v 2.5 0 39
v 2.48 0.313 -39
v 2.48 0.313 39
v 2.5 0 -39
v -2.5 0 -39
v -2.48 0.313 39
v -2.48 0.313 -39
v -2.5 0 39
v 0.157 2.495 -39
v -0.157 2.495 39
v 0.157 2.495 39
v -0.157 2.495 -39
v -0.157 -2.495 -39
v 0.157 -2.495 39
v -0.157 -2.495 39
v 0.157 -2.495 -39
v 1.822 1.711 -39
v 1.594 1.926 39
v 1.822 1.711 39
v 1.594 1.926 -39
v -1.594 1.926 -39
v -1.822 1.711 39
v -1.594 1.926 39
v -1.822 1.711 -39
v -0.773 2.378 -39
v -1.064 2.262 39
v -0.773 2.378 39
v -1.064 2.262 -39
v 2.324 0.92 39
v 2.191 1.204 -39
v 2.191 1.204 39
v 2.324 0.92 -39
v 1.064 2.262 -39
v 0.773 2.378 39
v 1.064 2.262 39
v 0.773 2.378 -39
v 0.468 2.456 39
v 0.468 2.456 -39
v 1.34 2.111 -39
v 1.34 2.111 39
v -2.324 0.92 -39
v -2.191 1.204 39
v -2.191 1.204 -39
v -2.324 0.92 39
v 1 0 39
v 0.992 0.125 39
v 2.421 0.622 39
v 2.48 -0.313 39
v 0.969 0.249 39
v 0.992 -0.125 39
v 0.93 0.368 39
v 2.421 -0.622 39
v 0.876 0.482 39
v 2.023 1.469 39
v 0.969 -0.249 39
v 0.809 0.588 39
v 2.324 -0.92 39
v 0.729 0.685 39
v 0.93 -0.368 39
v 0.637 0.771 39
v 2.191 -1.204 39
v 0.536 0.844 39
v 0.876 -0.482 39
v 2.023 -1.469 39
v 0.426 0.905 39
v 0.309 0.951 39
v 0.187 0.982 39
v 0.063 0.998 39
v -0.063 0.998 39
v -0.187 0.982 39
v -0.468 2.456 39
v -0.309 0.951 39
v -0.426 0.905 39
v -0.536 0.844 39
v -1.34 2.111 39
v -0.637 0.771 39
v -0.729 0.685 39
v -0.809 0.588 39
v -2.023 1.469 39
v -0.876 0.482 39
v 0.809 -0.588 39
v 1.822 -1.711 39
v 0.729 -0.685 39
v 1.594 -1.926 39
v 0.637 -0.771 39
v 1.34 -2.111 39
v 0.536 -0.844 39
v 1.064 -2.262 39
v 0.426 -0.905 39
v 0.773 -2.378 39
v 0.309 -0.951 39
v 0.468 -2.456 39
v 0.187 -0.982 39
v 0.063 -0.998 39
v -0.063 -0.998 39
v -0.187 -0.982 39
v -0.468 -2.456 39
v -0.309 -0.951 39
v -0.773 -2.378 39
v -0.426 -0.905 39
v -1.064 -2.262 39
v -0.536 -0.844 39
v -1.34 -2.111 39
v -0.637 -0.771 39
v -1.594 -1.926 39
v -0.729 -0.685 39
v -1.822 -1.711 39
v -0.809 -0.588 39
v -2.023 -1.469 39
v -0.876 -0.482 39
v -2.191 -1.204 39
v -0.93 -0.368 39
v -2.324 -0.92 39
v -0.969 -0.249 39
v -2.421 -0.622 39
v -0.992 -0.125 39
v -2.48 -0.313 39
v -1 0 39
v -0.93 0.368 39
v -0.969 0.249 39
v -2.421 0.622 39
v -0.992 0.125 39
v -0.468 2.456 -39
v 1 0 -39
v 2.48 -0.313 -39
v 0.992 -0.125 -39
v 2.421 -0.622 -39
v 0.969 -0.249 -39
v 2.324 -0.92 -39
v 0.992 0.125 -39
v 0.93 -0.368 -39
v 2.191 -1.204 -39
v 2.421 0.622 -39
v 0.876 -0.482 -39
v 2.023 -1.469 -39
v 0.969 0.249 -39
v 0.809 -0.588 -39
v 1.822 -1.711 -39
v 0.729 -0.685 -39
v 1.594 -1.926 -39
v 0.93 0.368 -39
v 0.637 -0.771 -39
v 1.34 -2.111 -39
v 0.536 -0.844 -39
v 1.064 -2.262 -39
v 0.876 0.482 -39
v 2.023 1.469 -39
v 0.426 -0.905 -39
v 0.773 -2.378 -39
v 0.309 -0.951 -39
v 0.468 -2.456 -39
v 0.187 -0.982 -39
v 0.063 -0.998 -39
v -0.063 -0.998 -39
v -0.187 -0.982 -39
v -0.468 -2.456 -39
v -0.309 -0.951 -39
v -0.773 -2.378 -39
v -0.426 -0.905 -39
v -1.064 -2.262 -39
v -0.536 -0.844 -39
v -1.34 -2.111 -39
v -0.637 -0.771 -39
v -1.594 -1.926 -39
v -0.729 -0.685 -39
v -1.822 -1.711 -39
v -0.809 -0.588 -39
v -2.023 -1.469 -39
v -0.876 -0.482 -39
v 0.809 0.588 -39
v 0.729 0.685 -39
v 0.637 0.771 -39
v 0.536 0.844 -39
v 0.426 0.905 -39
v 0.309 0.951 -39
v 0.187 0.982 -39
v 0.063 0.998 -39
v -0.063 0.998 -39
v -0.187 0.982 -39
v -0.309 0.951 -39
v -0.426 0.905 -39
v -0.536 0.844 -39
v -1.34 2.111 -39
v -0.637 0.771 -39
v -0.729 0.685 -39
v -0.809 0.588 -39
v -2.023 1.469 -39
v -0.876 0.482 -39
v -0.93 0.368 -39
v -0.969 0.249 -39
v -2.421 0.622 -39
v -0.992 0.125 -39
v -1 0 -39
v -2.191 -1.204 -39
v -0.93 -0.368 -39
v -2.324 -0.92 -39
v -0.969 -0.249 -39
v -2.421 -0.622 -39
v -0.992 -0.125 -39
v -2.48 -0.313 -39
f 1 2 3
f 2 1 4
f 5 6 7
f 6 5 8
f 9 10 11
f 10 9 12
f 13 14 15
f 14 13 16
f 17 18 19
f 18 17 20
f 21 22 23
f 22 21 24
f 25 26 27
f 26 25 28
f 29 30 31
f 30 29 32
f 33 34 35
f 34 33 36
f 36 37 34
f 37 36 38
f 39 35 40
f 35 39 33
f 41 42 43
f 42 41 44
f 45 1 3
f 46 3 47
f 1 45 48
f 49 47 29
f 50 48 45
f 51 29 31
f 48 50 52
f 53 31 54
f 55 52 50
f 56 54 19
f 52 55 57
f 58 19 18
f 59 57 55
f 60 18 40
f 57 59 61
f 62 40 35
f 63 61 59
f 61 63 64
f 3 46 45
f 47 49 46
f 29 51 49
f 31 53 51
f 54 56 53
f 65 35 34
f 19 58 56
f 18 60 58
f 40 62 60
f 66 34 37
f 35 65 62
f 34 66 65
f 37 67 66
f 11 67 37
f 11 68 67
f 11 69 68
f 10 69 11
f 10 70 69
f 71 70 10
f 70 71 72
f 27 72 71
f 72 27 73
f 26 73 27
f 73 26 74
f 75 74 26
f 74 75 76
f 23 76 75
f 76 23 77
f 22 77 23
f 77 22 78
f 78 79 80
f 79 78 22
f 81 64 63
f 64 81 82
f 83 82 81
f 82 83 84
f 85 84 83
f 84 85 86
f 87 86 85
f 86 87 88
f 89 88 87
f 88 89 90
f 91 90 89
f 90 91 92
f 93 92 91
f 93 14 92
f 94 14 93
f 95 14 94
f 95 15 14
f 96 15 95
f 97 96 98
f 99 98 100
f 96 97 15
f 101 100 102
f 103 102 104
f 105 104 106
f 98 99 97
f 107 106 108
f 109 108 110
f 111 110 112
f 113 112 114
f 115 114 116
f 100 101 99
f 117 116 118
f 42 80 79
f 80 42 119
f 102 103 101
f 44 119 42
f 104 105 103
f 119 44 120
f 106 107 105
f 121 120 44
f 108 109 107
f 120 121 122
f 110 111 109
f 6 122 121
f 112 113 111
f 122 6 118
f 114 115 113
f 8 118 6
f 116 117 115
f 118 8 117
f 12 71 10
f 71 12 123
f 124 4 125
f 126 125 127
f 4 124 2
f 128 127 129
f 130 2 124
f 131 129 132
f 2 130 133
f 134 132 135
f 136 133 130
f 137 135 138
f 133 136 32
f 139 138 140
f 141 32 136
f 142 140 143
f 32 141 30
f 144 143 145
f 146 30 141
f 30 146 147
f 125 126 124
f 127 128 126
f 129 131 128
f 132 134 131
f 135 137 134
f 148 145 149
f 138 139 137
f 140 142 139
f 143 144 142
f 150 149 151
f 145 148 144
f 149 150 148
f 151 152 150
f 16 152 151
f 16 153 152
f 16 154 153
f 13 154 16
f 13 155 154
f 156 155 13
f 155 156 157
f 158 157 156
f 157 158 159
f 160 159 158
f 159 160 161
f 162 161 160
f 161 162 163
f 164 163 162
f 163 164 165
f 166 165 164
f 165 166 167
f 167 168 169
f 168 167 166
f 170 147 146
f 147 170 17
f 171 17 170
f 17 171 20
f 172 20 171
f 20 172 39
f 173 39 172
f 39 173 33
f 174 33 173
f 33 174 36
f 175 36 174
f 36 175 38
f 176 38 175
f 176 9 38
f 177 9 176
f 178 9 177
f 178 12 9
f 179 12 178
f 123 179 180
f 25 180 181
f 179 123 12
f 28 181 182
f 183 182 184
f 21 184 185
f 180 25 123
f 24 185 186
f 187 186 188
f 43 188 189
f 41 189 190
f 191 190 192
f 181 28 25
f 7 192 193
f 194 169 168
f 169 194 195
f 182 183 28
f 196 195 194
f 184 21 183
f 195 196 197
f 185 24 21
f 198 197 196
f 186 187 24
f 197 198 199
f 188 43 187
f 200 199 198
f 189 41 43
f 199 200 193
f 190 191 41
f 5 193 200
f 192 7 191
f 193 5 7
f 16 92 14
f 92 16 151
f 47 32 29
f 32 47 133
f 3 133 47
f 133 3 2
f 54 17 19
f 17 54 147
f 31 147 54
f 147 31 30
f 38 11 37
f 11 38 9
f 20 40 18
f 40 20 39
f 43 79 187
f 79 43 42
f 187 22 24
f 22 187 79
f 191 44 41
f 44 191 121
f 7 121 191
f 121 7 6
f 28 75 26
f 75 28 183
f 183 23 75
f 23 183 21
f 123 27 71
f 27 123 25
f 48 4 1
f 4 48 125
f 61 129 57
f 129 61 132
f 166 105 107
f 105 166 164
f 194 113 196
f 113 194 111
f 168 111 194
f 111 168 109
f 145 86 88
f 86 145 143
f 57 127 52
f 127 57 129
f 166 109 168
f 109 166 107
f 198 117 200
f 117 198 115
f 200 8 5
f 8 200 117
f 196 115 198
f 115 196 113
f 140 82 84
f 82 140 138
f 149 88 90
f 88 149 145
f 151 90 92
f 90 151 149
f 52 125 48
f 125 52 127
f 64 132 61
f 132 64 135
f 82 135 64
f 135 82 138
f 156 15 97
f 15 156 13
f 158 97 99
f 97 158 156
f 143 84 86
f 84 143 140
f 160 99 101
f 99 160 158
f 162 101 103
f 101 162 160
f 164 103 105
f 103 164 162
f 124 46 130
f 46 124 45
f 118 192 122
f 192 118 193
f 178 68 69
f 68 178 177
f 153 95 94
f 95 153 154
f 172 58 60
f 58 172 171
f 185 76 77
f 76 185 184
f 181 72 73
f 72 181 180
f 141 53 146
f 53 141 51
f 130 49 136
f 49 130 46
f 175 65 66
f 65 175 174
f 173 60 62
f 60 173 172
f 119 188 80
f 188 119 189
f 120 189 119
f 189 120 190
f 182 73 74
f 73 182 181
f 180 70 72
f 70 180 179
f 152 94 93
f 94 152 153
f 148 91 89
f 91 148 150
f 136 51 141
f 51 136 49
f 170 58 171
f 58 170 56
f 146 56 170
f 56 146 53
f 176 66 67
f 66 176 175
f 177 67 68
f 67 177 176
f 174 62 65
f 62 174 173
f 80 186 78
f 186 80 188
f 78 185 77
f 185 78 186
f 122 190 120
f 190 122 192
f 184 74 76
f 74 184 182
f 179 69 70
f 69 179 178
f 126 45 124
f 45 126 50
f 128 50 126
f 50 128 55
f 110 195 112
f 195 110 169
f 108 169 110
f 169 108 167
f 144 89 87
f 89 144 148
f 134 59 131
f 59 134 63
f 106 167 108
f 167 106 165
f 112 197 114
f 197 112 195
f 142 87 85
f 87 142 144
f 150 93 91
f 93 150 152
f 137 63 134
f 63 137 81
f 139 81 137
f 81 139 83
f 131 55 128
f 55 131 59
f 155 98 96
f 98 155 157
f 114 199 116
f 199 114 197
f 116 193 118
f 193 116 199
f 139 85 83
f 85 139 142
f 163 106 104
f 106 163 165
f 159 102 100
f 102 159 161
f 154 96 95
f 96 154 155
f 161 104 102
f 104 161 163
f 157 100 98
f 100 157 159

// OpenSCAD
$fn = 50;


difference() {
	union() {
		translate(v = [0, 0, -39.0000000000]) {
			cylinder(h = 78, r = 2.5000000000);
		}
	}
	union() {
		translate(v = [0, 0, -100.0000000000]) {
			cylinder(h = 200, r = 1.0000000000);
		}
	}
}
